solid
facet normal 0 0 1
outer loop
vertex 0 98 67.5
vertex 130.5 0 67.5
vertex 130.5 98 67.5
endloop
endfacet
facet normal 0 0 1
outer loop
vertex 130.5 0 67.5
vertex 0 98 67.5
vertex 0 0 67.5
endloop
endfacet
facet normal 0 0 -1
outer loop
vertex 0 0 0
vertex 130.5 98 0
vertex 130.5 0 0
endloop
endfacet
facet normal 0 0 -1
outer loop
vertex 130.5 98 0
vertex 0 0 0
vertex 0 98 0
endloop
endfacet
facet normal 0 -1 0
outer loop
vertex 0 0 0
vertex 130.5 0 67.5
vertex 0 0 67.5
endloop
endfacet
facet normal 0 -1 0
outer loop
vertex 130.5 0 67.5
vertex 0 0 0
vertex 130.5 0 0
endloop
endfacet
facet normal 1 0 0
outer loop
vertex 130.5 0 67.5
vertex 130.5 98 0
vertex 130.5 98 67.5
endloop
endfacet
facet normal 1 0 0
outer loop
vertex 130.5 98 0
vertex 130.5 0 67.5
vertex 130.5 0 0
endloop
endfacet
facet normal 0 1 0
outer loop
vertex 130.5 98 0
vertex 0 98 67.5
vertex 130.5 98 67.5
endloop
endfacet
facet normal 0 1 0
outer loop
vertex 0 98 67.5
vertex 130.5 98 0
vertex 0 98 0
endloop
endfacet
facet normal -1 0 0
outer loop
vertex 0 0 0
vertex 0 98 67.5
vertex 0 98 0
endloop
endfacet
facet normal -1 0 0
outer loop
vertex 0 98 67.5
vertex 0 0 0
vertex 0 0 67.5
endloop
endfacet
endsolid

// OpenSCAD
// Opentrons Flex EV Resin Tips Tall Adapter for Third-party Evotips
// loadName: ev_resin_tips_flex_tall_adapter
// Auto-generated by labware_to_stl.py from Opentrons V2 labware definition

$fn = 64;

difference() {
    // ── Labware body ──────────────────────────────────────────────
    cube([130.5000, 98.0000, 67.5000]);

    // ── Well cutouts ──────────────────────────────────────────────
}
